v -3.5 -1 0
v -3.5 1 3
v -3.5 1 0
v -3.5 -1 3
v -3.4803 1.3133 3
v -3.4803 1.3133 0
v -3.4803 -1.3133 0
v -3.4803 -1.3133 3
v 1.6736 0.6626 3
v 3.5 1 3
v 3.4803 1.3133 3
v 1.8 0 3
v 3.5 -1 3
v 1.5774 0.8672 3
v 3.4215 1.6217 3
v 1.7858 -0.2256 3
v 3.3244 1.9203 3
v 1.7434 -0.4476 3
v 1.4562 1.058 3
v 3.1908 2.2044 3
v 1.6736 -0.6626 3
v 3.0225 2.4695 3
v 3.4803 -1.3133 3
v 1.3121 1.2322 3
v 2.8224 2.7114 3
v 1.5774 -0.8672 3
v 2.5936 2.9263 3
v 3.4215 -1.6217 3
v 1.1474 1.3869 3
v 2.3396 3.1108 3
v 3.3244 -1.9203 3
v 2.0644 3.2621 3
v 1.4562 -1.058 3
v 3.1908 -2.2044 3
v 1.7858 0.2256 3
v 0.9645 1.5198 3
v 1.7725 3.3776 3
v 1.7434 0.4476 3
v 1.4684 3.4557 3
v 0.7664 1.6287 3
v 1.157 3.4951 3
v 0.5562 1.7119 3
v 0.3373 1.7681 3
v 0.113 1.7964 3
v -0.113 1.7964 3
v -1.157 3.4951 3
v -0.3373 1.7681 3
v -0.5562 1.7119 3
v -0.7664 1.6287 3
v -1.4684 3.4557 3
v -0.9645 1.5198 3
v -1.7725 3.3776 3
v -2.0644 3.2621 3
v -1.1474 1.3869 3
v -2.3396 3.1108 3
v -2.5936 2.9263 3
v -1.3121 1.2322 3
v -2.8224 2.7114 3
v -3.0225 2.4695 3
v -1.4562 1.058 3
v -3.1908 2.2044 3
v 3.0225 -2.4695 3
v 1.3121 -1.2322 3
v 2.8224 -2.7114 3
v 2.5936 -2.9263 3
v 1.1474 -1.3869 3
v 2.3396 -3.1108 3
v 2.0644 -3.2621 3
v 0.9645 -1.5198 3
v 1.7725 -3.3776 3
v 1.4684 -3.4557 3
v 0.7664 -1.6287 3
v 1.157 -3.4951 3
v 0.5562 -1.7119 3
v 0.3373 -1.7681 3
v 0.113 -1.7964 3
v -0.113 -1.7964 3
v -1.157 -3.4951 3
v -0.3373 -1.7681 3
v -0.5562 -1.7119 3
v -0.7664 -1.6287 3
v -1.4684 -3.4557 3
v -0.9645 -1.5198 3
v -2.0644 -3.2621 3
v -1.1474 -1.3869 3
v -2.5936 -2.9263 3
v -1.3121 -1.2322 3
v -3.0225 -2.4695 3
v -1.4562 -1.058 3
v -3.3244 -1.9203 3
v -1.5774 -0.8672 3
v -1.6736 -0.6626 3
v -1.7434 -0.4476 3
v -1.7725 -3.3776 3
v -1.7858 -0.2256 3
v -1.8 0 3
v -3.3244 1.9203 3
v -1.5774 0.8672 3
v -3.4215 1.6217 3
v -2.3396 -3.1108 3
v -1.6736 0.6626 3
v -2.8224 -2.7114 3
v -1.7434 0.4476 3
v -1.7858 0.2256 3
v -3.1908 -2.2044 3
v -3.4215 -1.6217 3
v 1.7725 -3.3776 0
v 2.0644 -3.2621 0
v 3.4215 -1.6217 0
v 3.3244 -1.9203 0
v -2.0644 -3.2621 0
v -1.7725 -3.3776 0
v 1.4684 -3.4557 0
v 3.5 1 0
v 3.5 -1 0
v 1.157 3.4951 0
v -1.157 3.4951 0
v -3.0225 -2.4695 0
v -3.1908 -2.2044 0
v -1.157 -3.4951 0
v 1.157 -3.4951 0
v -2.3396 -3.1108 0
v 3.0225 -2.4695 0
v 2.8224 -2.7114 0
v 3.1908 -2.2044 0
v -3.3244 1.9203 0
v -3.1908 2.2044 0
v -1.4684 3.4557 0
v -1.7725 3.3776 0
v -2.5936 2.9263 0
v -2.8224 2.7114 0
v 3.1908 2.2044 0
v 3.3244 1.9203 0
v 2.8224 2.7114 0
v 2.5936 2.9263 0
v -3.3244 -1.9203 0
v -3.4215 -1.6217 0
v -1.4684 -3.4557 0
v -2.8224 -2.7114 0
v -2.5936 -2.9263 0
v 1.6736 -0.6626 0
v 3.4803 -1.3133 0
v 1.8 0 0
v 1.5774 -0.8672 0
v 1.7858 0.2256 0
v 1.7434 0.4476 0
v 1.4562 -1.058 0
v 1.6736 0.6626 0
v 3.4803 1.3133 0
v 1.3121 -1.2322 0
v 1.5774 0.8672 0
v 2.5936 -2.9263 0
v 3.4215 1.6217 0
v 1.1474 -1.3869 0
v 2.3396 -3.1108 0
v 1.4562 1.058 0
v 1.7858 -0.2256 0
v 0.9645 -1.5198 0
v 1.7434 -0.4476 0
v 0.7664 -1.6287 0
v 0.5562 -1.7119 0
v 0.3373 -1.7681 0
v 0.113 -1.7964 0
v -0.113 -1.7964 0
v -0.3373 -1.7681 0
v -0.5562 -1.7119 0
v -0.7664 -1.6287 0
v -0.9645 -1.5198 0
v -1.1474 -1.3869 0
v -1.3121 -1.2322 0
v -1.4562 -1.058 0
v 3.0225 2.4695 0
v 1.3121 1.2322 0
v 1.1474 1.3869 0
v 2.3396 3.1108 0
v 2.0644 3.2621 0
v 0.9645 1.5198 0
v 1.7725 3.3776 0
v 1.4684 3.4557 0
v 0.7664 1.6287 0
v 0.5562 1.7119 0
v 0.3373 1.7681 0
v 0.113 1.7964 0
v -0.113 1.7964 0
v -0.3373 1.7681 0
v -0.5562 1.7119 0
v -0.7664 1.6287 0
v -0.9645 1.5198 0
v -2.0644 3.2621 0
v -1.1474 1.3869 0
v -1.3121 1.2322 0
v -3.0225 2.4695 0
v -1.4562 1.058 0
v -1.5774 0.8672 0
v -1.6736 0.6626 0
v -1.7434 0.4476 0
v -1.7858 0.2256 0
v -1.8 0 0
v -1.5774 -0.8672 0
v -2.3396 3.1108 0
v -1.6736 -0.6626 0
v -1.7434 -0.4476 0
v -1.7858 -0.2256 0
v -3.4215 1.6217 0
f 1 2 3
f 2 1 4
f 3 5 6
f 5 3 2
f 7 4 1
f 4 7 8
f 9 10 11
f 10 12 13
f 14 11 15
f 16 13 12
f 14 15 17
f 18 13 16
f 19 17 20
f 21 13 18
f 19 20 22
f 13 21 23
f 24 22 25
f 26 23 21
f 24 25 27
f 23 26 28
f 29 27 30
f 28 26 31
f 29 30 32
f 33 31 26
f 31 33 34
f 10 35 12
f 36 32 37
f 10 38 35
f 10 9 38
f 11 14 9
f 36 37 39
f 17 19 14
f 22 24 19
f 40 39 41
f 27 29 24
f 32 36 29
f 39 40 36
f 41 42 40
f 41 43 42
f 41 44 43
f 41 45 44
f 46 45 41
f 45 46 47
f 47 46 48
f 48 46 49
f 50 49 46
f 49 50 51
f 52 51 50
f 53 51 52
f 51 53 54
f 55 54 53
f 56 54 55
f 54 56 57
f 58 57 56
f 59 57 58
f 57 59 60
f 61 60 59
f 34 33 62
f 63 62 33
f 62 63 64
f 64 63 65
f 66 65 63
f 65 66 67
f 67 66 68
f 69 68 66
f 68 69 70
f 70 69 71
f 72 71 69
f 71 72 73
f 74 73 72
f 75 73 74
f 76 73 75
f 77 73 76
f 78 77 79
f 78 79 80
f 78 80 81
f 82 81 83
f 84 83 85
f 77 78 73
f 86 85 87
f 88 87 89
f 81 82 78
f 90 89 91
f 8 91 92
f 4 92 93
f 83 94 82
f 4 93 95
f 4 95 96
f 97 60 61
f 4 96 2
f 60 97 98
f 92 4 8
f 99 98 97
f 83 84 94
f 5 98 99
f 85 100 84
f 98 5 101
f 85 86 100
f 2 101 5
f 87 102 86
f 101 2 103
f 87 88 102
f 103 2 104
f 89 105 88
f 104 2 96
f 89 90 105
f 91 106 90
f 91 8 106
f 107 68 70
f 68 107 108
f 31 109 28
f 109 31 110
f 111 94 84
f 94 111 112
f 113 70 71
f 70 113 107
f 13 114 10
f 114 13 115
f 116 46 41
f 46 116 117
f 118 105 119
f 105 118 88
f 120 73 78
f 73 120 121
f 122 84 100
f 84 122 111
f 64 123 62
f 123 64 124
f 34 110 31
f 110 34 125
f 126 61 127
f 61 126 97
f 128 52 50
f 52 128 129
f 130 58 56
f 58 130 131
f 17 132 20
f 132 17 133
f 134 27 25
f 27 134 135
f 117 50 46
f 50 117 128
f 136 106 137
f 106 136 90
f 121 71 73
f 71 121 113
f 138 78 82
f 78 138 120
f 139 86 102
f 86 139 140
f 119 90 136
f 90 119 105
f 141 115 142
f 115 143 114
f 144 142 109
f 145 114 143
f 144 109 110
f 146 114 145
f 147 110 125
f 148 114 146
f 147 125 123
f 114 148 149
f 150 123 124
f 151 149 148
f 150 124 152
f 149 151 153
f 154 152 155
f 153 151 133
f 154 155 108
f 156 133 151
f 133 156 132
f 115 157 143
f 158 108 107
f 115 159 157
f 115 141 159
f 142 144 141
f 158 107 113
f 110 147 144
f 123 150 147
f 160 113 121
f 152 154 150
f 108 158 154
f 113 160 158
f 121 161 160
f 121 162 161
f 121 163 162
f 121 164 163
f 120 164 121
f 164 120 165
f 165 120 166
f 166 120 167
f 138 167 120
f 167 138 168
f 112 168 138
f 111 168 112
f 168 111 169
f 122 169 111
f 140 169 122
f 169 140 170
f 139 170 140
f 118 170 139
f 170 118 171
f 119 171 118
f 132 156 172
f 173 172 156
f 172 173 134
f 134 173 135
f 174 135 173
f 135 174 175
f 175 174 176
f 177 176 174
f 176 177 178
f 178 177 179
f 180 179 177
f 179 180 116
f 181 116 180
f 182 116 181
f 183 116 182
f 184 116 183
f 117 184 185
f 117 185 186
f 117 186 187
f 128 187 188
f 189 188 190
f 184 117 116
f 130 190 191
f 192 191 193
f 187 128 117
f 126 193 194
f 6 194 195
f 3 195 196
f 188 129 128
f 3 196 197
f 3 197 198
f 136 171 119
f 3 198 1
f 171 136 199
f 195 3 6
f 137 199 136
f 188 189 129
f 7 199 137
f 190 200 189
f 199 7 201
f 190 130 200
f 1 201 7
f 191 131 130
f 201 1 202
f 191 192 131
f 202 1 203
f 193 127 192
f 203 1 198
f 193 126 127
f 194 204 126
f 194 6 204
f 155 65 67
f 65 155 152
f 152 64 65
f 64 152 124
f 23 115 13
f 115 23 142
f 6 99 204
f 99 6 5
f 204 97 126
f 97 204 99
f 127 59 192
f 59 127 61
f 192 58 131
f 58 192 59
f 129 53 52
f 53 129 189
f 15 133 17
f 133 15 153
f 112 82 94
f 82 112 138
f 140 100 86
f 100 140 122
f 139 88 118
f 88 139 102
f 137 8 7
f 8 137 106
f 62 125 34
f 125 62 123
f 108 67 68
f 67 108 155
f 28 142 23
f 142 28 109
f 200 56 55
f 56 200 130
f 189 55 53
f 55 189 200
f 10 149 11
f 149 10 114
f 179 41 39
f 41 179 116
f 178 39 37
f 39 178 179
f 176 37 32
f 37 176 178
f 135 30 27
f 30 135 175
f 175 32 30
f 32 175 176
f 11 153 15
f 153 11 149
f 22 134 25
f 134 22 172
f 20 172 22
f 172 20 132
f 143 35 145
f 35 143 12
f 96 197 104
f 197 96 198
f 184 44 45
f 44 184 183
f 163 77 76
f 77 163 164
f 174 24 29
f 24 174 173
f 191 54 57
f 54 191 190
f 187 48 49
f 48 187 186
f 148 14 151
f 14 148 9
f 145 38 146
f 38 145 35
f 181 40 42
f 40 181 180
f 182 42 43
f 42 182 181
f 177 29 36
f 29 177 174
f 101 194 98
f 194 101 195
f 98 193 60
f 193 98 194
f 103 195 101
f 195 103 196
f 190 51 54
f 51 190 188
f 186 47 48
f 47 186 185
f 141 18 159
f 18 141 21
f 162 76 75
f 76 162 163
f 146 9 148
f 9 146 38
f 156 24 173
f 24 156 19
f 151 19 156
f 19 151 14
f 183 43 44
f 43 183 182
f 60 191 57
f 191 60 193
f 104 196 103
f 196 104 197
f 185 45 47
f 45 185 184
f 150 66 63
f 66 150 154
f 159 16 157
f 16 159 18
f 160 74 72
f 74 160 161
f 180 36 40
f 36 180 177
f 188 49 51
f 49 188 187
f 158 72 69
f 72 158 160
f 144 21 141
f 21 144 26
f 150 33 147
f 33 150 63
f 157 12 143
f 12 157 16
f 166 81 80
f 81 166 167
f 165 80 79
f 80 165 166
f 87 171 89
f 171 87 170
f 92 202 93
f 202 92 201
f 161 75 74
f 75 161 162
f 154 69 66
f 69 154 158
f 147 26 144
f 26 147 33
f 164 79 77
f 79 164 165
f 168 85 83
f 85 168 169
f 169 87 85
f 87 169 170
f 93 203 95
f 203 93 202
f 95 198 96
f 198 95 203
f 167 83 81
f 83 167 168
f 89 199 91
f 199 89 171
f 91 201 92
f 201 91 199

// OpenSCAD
$fn = 50;


difference() {
	union() {
		translate(v = [0, 0, 0]) {
			rotate(a = [0, 0, 0]) {
				hull() {
					translate(v = [-1.0000000000, 1.0000000000, 0]) {
						rotate(a = [0, 0, 0]) {
							translate(v = [0, 0, 0]) {
								rotate(a = [0, 0, 0]) {
									cylinder(h = 3, r = 2.5000000000);
								}
							}
						}
					}
					translate(v = [1.0000000000, 1.0000000000, 0]) {
						rotate(a = [0, 0, 0]) {
							translate(v = [0, 0, 0]) {
								rotate(a = [0, 0, 0]) {
									cylinder(h = 3, r = 2.5000000000);
								}
							}
						}
					}
					translate(v = [-1.0000000000, -1.0000000000, 0]) {
						rotate(a = [0, 0, 0]) {
							translate(v = [0, 0, 0]) {
								rotate(a = [0, 0, 0]) {
									cylinder(h = 3, r = 2.5000000000);
								}
							}
						}
					}
					translate(v = [1.0000000000, -1.0000000000, 0]) {
						rotate(a = [0, 0, 0]) {
							translate(v = [0, 0, 0]) {
								rotate(a = [0, 0, 0]) {
									cylinder(h = 3, r = 2.5000000000);
								}
							}
						}
					}
				}
			}
		}
	}
	union() {
		translate(v = [0.0000000000, 0.0000000000, 0]) {
			rotate(a = [0, 0, 0]) {
				translate(v = [0, 0, -50]) {
					rotate(a = [0, 0, 0]) {
						cylinder(h = 100, r = 1.8000000000);
					}
				}
			}
		}
	}
}
